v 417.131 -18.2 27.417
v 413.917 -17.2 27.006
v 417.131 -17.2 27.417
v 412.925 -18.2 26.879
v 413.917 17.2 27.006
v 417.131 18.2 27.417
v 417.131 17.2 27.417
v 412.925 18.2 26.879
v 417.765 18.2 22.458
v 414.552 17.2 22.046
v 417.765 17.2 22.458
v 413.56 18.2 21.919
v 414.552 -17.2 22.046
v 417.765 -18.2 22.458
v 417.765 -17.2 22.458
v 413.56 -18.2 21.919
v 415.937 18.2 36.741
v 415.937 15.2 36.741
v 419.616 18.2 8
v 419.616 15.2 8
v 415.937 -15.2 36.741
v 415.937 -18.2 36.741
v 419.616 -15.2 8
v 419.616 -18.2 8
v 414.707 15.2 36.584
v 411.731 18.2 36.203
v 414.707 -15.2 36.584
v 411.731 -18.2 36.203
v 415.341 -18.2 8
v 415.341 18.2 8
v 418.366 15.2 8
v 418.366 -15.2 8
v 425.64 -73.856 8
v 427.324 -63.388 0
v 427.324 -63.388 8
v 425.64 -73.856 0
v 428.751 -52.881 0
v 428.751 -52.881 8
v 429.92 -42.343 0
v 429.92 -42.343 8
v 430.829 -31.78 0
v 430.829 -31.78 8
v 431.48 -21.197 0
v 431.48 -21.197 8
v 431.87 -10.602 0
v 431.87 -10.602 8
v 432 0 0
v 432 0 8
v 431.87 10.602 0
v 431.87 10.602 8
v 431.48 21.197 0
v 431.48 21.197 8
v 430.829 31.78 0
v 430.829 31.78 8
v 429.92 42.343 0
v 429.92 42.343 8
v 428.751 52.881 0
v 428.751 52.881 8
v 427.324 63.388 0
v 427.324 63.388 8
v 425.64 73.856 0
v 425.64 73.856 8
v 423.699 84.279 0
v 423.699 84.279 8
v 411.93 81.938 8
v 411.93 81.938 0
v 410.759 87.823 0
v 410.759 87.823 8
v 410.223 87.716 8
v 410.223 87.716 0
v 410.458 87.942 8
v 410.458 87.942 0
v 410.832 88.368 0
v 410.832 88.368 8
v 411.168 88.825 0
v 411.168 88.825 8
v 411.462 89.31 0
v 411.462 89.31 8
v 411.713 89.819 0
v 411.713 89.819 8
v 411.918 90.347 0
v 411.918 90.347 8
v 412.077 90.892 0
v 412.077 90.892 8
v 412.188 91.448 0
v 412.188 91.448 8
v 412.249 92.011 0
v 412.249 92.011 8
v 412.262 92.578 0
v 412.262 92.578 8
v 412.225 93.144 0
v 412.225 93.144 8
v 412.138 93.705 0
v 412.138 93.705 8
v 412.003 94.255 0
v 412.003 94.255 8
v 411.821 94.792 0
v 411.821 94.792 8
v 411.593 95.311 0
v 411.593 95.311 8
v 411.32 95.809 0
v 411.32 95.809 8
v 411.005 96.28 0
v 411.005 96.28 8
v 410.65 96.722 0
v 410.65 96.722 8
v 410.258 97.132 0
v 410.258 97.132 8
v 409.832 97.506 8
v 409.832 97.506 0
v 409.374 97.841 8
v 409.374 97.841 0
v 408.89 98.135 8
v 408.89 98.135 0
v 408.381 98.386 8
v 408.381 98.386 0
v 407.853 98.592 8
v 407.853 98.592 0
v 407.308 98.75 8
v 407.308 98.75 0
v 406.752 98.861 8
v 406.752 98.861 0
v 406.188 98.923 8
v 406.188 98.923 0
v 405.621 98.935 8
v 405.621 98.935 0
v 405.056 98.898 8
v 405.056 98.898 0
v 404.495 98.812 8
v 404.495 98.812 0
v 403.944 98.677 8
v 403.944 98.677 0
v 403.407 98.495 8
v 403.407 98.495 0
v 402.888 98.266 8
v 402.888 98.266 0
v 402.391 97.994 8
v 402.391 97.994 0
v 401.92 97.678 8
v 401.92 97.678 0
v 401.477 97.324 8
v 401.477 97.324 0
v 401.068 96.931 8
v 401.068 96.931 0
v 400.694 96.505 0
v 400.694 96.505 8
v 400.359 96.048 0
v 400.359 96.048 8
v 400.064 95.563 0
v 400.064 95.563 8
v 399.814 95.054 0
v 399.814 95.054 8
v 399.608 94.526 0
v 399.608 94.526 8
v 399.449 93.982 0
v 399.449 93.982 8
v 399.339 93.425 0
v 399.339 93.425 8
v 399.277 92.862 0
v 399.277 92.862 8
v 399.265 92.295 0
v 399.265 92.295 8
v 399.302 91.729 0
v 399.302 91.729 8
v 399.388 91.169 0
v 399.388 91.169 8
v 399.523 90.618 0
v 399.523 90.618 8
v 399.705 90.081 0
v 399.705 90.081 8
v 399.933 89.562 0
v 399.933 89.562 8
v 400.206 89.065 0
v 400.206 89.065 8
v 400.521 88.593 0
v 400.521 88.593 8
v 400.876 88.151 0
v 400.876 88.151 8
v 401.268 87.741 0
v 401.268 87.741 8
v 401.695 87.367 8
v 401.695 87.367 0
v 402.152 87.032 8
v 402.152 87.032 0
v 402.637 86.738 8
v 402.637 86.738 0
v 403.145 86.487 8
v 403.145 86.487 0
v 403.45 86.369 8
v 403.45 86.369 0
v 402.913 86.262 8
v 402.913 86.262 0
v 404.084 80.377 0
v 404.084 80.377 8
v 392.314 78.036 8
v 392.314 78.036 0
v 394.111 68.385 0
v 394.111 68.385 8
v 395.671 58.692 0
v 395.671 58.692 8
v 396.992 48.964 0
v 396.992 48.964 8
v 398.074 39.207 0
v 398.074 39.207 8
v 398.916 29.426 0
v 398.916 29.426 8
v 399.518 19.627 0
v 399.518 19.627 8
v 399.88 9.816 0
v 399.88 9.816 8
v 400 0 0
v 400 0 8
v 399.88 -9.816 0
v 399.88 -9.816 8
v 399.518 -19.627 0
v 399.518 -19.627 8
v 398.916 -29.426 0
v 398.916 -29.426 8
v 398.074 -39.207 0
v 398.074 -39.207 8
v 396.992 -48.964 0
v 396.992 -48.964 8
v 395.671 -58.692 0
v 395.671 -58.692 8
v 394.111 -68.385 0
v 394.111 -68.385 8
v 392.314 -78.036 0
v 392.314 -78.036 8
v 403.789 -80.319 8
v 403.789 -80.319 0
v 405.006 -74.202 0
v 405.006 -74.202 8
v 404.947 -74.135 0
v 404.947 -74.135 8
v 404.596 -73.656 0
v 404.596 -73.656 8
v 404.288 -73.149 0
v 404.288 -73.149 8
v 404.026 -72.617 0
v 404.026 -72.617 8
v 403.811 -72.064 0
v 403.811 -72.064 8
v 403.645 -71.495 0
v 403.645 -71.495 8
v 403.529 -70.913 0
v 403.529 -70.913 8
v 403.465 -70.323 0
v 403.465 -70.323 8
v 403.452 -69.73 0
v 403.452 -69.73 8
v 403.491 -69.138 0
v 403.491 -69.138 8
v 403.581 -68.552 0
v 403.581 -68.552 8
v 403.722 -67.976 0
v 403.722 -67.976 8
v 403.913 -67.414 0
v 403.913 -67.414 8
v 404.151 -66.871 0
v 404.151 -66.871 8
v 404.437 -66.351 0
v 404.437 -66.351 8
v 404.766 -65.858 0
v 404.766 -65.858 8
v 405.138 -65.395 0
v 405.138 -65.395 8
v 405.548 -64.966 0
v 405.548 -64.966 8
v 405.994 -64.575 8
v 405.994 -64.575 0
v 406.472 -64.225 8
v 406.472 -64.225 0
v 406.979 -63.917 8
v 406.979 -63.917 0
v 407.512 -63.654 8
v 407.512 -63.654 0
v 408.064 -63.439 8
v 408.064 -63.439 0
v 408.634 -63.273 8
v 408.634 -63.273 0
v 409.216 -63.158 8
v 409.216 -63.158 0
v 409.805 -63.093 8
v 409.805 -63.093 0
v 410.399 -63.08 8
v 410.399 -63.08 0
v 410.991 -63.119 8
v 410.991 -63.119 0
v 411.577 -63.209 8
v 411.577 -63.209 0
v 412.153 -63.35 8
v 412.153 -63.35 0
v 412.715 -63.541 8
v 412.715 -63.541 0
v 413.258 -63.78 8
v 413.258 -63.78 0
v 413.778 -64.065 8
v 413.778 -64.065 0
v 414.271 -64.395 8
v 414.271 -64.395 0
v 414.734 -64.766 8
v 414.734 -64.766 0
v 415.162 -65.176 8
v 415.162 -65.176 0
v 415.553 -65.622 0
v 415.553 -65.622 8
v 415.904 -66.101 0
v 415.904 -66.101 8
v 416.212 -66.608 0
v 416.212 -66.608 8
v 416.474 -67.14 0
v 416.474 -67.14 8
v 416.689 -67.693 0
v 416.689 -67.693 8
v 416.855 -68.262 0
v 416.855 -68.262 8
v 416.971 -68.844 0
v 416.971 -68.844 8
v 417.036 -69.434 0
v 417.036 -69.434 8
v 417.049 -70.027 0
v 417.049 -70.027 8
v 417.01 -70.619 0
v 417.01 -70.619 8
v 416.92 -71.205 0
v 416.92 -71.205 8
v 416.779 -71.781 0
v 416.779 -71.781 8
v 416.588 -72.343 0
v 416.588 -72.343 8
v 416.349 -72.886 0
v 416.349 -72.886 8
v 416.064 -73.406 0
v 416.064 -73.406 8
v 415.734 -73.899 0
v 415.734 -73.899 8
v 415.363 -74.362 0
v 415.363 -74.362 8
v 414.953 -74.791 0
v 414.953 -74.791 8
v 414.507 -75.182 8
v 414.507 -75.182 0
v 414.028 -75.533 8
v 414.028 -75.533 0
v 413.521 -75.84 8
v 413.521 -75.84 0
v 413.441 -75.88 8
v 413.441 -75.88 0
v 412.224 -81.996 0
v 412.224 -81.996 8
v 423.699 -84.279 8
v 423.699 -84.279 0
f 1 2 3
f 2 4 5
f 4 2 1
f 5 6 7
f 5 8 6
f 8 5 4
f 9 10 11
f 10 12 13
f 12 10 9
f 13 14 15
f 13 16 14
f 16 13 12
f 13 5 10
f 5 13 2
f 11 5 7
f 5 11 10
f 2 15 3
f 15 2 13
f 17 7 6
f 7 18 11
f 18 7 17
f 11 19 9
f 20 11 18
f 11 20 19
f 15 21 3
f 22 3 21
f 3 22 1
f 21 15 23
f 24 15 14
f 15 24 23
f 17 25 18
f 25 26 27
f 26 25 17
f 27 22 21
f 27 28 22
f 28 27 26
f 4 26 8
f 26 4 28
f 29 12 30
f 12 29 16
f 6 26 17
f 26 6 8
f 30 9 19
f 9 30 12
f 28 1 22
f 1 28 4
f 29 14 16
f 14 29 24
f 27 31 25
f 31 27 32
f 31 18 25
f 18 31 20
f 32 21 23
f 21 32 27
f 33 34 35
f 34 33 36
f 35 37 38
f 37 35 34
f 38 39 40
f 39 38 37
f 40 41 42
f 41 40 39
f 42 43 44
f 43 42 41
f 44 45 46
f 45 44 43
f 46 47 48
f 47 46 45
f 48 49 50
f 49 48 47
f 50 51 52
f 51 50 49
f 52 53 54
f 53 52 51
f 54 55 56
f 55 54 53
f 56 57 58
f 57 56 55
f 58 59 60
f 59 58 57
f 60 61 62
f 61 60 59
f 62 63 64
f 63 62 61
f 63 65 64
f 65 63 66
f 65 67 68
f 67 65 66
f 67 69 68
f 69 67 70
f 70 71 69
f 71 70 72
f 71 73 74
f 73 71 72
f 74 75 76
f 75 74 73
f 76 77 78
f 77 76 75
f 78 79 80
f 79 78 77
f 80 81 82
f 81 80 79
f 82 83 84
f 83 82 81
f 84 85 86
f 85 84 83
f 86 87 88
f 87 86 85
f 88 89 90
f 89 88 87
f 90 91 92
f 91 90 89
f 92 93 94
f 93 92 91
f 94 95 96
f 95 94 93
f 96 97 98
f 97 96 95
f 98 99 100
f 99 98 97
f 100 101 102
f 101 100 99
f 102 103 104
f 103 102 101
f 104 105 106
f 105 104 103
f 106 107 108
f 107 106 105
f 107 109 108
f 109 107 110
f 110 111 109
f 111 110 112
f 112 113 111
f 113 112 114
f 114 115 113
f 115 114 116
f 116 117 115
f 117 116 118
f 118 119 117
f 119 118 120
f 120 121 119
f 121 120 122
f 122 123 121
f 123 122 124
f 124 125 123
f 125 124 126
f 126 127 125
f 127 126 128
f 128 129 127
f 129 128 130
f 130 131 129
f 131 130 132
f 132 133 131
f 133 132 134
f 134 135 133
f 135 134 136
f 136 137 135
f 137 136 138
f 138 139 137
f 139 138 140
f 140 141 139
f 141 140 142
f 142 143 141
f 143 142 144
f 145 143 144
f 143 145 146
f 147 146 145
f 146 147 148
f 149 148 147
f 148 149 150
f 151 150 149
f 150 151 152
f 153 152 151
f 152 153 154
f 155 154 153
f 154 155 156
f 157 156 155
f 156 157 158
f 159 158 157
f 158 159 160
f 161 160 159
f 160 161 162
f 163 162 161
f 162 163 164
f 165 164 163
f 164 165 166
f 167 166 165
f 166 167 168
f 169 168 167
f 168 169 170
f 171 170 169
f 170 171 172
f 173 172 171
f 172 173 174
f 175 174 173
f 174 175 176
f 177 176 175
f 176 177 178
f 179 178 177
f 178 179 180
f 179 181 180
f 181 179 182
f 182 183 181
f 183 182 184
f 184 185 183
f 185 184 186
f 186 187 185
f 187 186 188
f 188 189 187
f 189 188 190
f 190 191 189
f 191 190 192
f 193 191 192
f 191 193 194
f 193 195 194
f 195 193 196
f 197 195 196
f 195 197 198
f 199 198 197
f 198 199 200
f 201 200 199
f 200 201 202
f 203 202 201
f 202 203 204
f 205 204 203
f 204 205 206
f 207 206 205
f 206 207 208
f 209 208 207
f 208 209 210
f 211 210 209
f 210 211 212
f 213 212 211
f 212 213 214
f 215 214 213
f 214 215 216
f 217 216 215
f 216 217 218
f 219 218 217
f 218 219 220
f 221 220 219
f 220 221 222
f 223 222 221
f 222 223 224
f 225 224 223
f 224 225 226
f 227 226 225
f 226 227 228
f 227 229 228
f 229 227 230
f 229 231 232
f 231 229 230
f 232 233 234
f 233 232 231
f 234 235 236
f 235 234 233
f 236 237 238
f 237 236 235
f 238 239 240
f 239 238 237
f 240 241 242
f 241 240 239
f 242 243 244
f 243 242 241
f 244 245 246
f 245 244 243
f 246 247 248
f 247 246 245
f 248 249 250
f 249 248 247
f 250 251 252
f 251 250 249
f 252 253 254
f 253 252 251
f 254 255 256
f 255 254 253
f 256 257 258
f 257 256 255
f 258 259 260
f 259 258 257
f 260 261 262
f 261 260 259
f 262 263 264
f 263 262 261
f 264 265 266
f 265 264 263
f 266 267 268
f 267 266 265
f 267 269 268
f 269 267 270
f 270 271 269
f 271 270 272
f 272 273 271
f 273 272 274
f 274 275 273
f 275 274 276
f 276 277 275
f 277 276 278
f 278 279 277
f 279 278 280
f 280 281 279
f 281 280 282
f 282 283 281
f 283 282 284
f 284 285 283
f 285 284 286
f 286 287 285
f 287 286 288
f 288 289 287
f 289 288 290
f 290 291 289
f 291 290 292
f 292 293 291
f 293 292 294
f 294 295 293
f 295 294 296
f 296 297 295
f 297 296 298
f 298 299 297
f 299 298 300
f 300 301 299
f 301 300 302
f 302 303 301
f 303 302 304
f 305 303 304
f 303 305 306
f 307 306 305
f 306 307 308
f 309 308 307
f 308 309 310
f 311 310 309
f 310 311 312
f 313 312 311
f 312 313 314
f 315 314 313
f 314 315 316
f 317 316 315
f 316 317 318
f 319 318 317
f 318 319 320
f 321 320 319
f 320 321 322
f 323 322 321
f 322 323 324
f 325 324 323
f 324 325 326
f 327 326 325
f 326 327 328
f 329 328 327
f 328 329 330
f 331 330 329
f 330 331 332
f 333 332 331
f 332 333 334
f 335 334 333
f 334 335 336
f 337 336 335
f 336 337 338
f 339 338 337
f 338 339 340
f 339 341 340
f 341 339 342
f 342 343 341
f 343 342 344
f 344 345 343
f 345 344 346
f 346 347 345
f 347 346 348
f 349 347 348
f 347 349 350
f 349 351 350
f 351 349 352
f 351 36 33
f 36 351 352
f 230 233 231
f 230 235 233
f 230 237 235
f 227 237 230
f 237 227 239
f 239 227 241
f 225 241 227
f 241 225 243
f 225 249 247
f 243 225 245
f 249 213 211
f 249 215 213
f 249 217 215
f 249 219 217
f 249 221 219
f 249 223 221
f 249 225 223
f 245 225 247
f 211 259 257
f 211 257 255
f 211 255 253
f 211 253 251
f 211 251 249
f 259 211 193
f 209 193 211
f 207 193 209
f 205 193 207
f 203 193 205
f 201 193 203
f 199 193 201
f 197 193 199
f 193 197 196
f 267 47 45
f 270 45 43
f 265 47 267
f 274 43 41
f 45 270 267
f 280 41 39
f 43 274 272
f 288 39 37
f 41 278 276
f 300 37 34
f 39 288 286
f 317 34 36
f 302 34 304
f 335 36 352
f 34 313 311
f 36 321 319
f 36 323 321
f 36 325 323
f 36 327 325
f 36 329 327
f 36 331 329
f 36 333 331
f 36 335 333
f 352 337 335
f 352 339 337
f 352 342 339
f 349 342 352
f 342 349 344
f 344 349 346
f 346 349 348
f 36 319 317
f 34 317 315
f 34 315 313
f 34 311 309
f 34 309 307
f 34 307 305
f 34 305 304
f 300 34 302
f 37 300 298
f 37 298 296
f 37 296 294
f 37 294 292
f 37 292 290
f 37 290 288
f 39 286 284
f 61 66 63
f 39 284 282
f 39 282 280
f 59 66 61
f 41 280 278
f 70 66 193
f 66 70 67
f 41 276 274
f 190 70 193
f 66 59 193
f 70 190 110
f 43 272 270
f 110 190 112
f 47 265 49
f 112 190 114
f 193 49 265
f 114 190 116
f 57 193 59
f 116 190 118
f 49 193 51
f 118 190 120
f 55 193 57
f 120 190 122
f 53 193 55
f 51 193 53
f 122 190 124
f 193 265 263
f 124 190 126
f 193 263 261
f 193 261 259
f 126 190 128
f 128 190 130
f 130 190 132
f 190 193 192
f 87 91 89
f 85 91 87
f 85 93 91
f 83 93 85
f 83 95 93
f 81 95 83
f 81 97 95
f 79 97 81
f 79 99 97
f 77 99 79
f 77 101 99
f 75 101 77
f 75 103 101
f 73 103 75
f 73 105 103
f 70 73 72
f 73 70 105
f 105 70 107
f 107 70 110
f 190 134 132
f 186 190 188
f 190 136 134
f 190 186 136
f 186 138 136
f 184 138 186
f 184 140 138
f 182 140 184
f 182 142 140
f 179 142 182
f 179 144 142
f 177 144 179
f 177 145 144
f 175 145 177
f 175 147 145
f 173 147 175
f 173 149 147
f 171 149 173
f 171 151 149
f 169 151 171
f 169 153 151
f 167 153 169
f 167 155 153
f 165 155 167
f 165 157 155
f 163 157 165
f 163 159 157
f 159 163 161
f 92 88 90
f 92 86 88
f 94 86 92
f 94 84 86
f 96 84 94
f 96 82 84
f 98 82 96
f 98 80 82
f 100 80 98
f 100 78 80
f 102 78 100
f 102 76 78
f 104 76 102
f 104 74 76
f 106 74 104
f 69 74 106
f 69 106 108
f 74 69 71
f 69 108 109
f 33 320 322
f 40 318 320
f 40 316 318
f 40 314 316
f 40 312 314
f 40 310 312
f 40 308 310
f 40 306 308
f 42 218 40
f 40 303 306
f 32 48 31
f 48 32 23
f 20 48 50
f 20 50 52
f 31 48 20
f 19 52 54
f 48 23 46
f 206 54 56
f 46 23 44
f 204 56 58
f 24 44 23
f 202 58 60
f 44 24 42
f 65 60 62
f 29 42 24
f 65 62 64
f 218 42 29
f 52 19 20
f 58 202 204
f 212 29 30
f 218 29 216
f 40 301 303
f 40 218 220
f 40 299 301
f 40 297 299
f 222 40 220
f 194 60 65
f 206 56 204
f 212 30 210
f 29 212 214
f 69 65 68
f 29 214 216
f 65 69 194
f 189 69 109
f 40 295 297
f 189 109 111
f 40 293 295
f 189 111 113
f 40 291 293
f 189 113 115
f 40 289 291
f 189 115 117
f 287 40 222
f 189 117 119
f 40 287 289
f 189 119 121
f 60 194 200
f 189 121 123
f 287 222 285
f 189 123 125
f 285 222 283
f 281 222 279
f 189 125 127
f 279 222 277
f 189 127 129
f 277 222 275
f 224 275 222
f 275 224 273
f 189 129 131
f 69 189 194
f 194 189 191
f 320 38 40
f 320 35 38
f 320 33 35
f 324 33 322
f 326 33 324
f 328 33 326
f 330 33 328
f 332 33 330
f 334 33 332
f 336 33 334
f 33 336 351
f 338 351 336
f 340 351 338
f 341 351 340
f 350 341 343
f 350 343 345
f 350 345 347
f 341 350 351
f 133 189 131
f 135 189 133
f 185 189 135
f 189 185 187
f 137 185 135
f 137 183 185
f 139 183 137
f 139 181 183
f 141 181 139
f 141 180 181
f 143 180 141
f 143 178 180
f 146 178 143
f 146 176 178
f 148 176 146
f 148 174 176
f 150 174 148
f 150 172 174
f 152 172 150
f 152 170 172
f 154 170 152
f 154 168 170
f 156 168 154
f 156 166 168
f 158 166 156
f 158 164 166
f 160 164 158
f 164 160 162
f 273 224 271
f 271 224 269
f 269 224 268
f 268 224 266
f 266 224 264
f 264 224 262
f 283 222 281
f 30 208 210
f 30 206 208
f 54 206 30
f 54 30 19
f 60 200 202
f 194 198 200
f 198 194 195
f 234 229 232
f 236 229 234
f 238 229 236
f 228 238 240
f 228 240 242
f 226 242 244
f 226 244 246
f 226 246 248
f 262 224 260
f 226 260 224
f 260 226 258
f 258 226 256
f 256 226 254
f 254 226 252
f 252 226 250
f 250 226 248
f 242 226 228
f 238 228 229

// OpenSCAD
// file: lib.scad
// Shared pieces for the Winterlight PETG parts (Bambu Lab A1, 256 × 256 × 256 mm).
// Millimetres. Measure your own mounting strip and set strip_w / strip_t on the
// command line (-D strip_w=20) or in OpenSCAD's Customizer before printing.
$fn = 72;
strip_w = 30;   // pixel mounting strip width
strip_t = 1.54; // pixel mounting strip thickness (measured)
clr = 0.4;      // clearance per side, a snug slide fit in PETG
wall = 3;       // channel walls
tie_d = 4.5;    // holes for the 2.5 mm cable ties or an M4 bolt

// Closed slots the strip slides through (the ground strip's posts).
slot_t = strip_t + 2*clr;
slot_w = strip_w + 2*clr;
// Open pockets the strip ends sit in (mini trees, tree hub and ring): a close
// fit across, and a little shallower than the strip, so the strip stands
// proud of the face and the cable tie clamps it down.
proud = 0.3;
pocket_t = strip_t - proud;
pocket_w = strip_w + 2*0.2;
// Outside size of a strip channel: radial depth and tangential width.
ch_depth = pocket_t + wall;
ch_width = pocket_w + 2*wall;

// A channel that holds a strip's end: the strip runs up +Z with its face
// (and its pixels) towards +X. Open on the +X side so the strip drops in,
// with a groove round the outside where a cable tie pulls it home.
module channel(h, floor = 3) {
  z0 = h*0.55;
  difference() {
    translate([-ch_depth, -ch_width/2, 0]) cube([ch_depth, ch_width, h]);
    translate([-pocket_t, -pocket_w/2, floor]) cube([pocket_t + 1, pocket_w, h]);
    // Tie groove, 1 mm deep, round the back and both sides.
    difference() {
      translate([-ch_depth - 1, -ch_width/2 - 1, z0]) cube([ch_depth + 2, ch_width + 2, 5]);
      translate([-ch_depth + 1, -ch_width/2 + 1, z0 - 1]) cube([ch_depth + 2, ch_width - 2, 7]);
    }
  }
}

// n channels on a circle of radius r (the strip's face), leaning by tilt
// degrees: positive leans the top inwards, negative outwards.
module channel_ring(n, r, tilt, h, start = 0) {
  intersection() {
    for (i = [0 : n - 1]) rotate([0, 0, start + 360*i/n])
      translate([r, 0, 0]) rotate([0, -tilt, 0]) channel(h);
    translate([-1000, -1000, 0]) cube([2000, 2000, 1000]);
  }
}

// A flat ring with spokes to a centre boss: the plate that ties the channels together.
module spoked_ring(r_out, r_in, t, n, boss_d, arm_w = 8) {
  difference() { cylinder(r = r_out, h = t); translate([0, 0, -1]) cylinder(r = r_in, h = t + 2); }
  for (i = [0 : n - 1]) rotate([0, 0, 360*i/n + 180/n]) translate([0, -arm_w/2, 0]) cube([r_in + 1, arm_w, t]);
  cylinder(d = boss_d, h = t);
}

// Bricks for ballast: the paving in front of the house is stone, so nothing
// can be staked into it. The feet are trays that hold standard concrete paving
// bricks (betonklinkers, 22 × 11 × 8 cm, about 4 kg each). Set your own size.
brick_l = 220;
brick_w = 110;
brick_h = 80;
brick_clr = 3;      // bricks vary a few millimetres
tray_wall = 1.6;
tray_h = 20;
tray_lip = 10;      // the floor is only a ledge round the edge, to save PETG
tray_floor = 1.6;

// A tray for n bricks side by side along Y, its corner at the origin.
// gap: extra room between the bricks (for a rib); returns nothing, see tray_size.
function tray_inner(n = 1, gap = 0) = [brick_l + 2*brick_clr, n*(brick_w + 2*brick_clr) + gap];
module tray(n = 1, gap = 0) {
  in = tray_inner(n, gap);
  out = [in[0] + 2*tray_wall, in[1] + 2*tray_wall];
  difference() {
    cube([out[0], out[1], tray_h]);
    translate([tray_wall, tray_wall, tray_floor]) cube([in[0], in[1], tray_h]);
    translate([tray_wall + tray_lip, tray_wall + tray_lip, -1]) cube([in[0] - 2*tray_lip, in[1] - 2*tray_lip, tray_floor + 2]);
  }
}
// main file
// Wireframe tree, base ring: 16 segments that puzzle together into the
// 84 cm ring round the pole, each holding the foot of one strand. Four of
// them (weighted = true) carry a tray for a paving brick, which holds the ring
// and the tree down on the stone. Print flat side down, no supports.
include <lib.scad>
strands = 16;
r_base = 420;
r_hub = 100;
height = 2500;
weighted = false;
tilt = atan((r_base - r_hub)/height);
band = 32;
ring_h = 8;
ch_h = 32;
half = 180/strands;
knob = 13;
neck = 8;
joint_clr = 0.3;

module knob2d(grow = 0) {
  // Points along the tangent at the segment's end, as a puzzle tab.
  translate([-neck/2 - grow, -1]) square([neck + 2*grow, 7 + grow]);
  translate([0, 6 + knob/2 - 1]) circle(d = knob + 2*grow);
}
module sector2d() {
  r0 = r_base - band/2 - 4;
  r1 = r_base + band/2 - 4;
  polygon(concat([for (a = [-half : half/8 : half]) r0*[cos(a), sin(a)]], [for (a = [half : -half/8 : -half]) r1*[cos(a), sin(a)]]));
}
module segment2d() {
  rm = r_base - 4;
  difference() {
    union() { sector2d(); rotate(half) translate([rm, 0]) knob2d(); }
    rotate(-half) translate([rm, 0]) knob2d(joint_clr);
  }
}

union() {
  linear_extrude(ring_h) segment2d();
  intersection() {
    translate([r_base, 0, ring_h - 3]) rotate([0, -tilt, 0]) channel(ch_h);
    translate([-1000, -1000, ring_h - 3]) cube([2000, 2000, 1000]);
  }
  if (weighted) {
    in = tray_inner(1);
    // The brick lies along the ring, just outside it.
    translate([r_base + band/2 - 6, -(in[0] + 2*tray_wall)/2, 0]) rotate([0, 0, 90]) translate([0, -(in[1] + 2*tray_wall), 0]) tray(1);
  }
}
